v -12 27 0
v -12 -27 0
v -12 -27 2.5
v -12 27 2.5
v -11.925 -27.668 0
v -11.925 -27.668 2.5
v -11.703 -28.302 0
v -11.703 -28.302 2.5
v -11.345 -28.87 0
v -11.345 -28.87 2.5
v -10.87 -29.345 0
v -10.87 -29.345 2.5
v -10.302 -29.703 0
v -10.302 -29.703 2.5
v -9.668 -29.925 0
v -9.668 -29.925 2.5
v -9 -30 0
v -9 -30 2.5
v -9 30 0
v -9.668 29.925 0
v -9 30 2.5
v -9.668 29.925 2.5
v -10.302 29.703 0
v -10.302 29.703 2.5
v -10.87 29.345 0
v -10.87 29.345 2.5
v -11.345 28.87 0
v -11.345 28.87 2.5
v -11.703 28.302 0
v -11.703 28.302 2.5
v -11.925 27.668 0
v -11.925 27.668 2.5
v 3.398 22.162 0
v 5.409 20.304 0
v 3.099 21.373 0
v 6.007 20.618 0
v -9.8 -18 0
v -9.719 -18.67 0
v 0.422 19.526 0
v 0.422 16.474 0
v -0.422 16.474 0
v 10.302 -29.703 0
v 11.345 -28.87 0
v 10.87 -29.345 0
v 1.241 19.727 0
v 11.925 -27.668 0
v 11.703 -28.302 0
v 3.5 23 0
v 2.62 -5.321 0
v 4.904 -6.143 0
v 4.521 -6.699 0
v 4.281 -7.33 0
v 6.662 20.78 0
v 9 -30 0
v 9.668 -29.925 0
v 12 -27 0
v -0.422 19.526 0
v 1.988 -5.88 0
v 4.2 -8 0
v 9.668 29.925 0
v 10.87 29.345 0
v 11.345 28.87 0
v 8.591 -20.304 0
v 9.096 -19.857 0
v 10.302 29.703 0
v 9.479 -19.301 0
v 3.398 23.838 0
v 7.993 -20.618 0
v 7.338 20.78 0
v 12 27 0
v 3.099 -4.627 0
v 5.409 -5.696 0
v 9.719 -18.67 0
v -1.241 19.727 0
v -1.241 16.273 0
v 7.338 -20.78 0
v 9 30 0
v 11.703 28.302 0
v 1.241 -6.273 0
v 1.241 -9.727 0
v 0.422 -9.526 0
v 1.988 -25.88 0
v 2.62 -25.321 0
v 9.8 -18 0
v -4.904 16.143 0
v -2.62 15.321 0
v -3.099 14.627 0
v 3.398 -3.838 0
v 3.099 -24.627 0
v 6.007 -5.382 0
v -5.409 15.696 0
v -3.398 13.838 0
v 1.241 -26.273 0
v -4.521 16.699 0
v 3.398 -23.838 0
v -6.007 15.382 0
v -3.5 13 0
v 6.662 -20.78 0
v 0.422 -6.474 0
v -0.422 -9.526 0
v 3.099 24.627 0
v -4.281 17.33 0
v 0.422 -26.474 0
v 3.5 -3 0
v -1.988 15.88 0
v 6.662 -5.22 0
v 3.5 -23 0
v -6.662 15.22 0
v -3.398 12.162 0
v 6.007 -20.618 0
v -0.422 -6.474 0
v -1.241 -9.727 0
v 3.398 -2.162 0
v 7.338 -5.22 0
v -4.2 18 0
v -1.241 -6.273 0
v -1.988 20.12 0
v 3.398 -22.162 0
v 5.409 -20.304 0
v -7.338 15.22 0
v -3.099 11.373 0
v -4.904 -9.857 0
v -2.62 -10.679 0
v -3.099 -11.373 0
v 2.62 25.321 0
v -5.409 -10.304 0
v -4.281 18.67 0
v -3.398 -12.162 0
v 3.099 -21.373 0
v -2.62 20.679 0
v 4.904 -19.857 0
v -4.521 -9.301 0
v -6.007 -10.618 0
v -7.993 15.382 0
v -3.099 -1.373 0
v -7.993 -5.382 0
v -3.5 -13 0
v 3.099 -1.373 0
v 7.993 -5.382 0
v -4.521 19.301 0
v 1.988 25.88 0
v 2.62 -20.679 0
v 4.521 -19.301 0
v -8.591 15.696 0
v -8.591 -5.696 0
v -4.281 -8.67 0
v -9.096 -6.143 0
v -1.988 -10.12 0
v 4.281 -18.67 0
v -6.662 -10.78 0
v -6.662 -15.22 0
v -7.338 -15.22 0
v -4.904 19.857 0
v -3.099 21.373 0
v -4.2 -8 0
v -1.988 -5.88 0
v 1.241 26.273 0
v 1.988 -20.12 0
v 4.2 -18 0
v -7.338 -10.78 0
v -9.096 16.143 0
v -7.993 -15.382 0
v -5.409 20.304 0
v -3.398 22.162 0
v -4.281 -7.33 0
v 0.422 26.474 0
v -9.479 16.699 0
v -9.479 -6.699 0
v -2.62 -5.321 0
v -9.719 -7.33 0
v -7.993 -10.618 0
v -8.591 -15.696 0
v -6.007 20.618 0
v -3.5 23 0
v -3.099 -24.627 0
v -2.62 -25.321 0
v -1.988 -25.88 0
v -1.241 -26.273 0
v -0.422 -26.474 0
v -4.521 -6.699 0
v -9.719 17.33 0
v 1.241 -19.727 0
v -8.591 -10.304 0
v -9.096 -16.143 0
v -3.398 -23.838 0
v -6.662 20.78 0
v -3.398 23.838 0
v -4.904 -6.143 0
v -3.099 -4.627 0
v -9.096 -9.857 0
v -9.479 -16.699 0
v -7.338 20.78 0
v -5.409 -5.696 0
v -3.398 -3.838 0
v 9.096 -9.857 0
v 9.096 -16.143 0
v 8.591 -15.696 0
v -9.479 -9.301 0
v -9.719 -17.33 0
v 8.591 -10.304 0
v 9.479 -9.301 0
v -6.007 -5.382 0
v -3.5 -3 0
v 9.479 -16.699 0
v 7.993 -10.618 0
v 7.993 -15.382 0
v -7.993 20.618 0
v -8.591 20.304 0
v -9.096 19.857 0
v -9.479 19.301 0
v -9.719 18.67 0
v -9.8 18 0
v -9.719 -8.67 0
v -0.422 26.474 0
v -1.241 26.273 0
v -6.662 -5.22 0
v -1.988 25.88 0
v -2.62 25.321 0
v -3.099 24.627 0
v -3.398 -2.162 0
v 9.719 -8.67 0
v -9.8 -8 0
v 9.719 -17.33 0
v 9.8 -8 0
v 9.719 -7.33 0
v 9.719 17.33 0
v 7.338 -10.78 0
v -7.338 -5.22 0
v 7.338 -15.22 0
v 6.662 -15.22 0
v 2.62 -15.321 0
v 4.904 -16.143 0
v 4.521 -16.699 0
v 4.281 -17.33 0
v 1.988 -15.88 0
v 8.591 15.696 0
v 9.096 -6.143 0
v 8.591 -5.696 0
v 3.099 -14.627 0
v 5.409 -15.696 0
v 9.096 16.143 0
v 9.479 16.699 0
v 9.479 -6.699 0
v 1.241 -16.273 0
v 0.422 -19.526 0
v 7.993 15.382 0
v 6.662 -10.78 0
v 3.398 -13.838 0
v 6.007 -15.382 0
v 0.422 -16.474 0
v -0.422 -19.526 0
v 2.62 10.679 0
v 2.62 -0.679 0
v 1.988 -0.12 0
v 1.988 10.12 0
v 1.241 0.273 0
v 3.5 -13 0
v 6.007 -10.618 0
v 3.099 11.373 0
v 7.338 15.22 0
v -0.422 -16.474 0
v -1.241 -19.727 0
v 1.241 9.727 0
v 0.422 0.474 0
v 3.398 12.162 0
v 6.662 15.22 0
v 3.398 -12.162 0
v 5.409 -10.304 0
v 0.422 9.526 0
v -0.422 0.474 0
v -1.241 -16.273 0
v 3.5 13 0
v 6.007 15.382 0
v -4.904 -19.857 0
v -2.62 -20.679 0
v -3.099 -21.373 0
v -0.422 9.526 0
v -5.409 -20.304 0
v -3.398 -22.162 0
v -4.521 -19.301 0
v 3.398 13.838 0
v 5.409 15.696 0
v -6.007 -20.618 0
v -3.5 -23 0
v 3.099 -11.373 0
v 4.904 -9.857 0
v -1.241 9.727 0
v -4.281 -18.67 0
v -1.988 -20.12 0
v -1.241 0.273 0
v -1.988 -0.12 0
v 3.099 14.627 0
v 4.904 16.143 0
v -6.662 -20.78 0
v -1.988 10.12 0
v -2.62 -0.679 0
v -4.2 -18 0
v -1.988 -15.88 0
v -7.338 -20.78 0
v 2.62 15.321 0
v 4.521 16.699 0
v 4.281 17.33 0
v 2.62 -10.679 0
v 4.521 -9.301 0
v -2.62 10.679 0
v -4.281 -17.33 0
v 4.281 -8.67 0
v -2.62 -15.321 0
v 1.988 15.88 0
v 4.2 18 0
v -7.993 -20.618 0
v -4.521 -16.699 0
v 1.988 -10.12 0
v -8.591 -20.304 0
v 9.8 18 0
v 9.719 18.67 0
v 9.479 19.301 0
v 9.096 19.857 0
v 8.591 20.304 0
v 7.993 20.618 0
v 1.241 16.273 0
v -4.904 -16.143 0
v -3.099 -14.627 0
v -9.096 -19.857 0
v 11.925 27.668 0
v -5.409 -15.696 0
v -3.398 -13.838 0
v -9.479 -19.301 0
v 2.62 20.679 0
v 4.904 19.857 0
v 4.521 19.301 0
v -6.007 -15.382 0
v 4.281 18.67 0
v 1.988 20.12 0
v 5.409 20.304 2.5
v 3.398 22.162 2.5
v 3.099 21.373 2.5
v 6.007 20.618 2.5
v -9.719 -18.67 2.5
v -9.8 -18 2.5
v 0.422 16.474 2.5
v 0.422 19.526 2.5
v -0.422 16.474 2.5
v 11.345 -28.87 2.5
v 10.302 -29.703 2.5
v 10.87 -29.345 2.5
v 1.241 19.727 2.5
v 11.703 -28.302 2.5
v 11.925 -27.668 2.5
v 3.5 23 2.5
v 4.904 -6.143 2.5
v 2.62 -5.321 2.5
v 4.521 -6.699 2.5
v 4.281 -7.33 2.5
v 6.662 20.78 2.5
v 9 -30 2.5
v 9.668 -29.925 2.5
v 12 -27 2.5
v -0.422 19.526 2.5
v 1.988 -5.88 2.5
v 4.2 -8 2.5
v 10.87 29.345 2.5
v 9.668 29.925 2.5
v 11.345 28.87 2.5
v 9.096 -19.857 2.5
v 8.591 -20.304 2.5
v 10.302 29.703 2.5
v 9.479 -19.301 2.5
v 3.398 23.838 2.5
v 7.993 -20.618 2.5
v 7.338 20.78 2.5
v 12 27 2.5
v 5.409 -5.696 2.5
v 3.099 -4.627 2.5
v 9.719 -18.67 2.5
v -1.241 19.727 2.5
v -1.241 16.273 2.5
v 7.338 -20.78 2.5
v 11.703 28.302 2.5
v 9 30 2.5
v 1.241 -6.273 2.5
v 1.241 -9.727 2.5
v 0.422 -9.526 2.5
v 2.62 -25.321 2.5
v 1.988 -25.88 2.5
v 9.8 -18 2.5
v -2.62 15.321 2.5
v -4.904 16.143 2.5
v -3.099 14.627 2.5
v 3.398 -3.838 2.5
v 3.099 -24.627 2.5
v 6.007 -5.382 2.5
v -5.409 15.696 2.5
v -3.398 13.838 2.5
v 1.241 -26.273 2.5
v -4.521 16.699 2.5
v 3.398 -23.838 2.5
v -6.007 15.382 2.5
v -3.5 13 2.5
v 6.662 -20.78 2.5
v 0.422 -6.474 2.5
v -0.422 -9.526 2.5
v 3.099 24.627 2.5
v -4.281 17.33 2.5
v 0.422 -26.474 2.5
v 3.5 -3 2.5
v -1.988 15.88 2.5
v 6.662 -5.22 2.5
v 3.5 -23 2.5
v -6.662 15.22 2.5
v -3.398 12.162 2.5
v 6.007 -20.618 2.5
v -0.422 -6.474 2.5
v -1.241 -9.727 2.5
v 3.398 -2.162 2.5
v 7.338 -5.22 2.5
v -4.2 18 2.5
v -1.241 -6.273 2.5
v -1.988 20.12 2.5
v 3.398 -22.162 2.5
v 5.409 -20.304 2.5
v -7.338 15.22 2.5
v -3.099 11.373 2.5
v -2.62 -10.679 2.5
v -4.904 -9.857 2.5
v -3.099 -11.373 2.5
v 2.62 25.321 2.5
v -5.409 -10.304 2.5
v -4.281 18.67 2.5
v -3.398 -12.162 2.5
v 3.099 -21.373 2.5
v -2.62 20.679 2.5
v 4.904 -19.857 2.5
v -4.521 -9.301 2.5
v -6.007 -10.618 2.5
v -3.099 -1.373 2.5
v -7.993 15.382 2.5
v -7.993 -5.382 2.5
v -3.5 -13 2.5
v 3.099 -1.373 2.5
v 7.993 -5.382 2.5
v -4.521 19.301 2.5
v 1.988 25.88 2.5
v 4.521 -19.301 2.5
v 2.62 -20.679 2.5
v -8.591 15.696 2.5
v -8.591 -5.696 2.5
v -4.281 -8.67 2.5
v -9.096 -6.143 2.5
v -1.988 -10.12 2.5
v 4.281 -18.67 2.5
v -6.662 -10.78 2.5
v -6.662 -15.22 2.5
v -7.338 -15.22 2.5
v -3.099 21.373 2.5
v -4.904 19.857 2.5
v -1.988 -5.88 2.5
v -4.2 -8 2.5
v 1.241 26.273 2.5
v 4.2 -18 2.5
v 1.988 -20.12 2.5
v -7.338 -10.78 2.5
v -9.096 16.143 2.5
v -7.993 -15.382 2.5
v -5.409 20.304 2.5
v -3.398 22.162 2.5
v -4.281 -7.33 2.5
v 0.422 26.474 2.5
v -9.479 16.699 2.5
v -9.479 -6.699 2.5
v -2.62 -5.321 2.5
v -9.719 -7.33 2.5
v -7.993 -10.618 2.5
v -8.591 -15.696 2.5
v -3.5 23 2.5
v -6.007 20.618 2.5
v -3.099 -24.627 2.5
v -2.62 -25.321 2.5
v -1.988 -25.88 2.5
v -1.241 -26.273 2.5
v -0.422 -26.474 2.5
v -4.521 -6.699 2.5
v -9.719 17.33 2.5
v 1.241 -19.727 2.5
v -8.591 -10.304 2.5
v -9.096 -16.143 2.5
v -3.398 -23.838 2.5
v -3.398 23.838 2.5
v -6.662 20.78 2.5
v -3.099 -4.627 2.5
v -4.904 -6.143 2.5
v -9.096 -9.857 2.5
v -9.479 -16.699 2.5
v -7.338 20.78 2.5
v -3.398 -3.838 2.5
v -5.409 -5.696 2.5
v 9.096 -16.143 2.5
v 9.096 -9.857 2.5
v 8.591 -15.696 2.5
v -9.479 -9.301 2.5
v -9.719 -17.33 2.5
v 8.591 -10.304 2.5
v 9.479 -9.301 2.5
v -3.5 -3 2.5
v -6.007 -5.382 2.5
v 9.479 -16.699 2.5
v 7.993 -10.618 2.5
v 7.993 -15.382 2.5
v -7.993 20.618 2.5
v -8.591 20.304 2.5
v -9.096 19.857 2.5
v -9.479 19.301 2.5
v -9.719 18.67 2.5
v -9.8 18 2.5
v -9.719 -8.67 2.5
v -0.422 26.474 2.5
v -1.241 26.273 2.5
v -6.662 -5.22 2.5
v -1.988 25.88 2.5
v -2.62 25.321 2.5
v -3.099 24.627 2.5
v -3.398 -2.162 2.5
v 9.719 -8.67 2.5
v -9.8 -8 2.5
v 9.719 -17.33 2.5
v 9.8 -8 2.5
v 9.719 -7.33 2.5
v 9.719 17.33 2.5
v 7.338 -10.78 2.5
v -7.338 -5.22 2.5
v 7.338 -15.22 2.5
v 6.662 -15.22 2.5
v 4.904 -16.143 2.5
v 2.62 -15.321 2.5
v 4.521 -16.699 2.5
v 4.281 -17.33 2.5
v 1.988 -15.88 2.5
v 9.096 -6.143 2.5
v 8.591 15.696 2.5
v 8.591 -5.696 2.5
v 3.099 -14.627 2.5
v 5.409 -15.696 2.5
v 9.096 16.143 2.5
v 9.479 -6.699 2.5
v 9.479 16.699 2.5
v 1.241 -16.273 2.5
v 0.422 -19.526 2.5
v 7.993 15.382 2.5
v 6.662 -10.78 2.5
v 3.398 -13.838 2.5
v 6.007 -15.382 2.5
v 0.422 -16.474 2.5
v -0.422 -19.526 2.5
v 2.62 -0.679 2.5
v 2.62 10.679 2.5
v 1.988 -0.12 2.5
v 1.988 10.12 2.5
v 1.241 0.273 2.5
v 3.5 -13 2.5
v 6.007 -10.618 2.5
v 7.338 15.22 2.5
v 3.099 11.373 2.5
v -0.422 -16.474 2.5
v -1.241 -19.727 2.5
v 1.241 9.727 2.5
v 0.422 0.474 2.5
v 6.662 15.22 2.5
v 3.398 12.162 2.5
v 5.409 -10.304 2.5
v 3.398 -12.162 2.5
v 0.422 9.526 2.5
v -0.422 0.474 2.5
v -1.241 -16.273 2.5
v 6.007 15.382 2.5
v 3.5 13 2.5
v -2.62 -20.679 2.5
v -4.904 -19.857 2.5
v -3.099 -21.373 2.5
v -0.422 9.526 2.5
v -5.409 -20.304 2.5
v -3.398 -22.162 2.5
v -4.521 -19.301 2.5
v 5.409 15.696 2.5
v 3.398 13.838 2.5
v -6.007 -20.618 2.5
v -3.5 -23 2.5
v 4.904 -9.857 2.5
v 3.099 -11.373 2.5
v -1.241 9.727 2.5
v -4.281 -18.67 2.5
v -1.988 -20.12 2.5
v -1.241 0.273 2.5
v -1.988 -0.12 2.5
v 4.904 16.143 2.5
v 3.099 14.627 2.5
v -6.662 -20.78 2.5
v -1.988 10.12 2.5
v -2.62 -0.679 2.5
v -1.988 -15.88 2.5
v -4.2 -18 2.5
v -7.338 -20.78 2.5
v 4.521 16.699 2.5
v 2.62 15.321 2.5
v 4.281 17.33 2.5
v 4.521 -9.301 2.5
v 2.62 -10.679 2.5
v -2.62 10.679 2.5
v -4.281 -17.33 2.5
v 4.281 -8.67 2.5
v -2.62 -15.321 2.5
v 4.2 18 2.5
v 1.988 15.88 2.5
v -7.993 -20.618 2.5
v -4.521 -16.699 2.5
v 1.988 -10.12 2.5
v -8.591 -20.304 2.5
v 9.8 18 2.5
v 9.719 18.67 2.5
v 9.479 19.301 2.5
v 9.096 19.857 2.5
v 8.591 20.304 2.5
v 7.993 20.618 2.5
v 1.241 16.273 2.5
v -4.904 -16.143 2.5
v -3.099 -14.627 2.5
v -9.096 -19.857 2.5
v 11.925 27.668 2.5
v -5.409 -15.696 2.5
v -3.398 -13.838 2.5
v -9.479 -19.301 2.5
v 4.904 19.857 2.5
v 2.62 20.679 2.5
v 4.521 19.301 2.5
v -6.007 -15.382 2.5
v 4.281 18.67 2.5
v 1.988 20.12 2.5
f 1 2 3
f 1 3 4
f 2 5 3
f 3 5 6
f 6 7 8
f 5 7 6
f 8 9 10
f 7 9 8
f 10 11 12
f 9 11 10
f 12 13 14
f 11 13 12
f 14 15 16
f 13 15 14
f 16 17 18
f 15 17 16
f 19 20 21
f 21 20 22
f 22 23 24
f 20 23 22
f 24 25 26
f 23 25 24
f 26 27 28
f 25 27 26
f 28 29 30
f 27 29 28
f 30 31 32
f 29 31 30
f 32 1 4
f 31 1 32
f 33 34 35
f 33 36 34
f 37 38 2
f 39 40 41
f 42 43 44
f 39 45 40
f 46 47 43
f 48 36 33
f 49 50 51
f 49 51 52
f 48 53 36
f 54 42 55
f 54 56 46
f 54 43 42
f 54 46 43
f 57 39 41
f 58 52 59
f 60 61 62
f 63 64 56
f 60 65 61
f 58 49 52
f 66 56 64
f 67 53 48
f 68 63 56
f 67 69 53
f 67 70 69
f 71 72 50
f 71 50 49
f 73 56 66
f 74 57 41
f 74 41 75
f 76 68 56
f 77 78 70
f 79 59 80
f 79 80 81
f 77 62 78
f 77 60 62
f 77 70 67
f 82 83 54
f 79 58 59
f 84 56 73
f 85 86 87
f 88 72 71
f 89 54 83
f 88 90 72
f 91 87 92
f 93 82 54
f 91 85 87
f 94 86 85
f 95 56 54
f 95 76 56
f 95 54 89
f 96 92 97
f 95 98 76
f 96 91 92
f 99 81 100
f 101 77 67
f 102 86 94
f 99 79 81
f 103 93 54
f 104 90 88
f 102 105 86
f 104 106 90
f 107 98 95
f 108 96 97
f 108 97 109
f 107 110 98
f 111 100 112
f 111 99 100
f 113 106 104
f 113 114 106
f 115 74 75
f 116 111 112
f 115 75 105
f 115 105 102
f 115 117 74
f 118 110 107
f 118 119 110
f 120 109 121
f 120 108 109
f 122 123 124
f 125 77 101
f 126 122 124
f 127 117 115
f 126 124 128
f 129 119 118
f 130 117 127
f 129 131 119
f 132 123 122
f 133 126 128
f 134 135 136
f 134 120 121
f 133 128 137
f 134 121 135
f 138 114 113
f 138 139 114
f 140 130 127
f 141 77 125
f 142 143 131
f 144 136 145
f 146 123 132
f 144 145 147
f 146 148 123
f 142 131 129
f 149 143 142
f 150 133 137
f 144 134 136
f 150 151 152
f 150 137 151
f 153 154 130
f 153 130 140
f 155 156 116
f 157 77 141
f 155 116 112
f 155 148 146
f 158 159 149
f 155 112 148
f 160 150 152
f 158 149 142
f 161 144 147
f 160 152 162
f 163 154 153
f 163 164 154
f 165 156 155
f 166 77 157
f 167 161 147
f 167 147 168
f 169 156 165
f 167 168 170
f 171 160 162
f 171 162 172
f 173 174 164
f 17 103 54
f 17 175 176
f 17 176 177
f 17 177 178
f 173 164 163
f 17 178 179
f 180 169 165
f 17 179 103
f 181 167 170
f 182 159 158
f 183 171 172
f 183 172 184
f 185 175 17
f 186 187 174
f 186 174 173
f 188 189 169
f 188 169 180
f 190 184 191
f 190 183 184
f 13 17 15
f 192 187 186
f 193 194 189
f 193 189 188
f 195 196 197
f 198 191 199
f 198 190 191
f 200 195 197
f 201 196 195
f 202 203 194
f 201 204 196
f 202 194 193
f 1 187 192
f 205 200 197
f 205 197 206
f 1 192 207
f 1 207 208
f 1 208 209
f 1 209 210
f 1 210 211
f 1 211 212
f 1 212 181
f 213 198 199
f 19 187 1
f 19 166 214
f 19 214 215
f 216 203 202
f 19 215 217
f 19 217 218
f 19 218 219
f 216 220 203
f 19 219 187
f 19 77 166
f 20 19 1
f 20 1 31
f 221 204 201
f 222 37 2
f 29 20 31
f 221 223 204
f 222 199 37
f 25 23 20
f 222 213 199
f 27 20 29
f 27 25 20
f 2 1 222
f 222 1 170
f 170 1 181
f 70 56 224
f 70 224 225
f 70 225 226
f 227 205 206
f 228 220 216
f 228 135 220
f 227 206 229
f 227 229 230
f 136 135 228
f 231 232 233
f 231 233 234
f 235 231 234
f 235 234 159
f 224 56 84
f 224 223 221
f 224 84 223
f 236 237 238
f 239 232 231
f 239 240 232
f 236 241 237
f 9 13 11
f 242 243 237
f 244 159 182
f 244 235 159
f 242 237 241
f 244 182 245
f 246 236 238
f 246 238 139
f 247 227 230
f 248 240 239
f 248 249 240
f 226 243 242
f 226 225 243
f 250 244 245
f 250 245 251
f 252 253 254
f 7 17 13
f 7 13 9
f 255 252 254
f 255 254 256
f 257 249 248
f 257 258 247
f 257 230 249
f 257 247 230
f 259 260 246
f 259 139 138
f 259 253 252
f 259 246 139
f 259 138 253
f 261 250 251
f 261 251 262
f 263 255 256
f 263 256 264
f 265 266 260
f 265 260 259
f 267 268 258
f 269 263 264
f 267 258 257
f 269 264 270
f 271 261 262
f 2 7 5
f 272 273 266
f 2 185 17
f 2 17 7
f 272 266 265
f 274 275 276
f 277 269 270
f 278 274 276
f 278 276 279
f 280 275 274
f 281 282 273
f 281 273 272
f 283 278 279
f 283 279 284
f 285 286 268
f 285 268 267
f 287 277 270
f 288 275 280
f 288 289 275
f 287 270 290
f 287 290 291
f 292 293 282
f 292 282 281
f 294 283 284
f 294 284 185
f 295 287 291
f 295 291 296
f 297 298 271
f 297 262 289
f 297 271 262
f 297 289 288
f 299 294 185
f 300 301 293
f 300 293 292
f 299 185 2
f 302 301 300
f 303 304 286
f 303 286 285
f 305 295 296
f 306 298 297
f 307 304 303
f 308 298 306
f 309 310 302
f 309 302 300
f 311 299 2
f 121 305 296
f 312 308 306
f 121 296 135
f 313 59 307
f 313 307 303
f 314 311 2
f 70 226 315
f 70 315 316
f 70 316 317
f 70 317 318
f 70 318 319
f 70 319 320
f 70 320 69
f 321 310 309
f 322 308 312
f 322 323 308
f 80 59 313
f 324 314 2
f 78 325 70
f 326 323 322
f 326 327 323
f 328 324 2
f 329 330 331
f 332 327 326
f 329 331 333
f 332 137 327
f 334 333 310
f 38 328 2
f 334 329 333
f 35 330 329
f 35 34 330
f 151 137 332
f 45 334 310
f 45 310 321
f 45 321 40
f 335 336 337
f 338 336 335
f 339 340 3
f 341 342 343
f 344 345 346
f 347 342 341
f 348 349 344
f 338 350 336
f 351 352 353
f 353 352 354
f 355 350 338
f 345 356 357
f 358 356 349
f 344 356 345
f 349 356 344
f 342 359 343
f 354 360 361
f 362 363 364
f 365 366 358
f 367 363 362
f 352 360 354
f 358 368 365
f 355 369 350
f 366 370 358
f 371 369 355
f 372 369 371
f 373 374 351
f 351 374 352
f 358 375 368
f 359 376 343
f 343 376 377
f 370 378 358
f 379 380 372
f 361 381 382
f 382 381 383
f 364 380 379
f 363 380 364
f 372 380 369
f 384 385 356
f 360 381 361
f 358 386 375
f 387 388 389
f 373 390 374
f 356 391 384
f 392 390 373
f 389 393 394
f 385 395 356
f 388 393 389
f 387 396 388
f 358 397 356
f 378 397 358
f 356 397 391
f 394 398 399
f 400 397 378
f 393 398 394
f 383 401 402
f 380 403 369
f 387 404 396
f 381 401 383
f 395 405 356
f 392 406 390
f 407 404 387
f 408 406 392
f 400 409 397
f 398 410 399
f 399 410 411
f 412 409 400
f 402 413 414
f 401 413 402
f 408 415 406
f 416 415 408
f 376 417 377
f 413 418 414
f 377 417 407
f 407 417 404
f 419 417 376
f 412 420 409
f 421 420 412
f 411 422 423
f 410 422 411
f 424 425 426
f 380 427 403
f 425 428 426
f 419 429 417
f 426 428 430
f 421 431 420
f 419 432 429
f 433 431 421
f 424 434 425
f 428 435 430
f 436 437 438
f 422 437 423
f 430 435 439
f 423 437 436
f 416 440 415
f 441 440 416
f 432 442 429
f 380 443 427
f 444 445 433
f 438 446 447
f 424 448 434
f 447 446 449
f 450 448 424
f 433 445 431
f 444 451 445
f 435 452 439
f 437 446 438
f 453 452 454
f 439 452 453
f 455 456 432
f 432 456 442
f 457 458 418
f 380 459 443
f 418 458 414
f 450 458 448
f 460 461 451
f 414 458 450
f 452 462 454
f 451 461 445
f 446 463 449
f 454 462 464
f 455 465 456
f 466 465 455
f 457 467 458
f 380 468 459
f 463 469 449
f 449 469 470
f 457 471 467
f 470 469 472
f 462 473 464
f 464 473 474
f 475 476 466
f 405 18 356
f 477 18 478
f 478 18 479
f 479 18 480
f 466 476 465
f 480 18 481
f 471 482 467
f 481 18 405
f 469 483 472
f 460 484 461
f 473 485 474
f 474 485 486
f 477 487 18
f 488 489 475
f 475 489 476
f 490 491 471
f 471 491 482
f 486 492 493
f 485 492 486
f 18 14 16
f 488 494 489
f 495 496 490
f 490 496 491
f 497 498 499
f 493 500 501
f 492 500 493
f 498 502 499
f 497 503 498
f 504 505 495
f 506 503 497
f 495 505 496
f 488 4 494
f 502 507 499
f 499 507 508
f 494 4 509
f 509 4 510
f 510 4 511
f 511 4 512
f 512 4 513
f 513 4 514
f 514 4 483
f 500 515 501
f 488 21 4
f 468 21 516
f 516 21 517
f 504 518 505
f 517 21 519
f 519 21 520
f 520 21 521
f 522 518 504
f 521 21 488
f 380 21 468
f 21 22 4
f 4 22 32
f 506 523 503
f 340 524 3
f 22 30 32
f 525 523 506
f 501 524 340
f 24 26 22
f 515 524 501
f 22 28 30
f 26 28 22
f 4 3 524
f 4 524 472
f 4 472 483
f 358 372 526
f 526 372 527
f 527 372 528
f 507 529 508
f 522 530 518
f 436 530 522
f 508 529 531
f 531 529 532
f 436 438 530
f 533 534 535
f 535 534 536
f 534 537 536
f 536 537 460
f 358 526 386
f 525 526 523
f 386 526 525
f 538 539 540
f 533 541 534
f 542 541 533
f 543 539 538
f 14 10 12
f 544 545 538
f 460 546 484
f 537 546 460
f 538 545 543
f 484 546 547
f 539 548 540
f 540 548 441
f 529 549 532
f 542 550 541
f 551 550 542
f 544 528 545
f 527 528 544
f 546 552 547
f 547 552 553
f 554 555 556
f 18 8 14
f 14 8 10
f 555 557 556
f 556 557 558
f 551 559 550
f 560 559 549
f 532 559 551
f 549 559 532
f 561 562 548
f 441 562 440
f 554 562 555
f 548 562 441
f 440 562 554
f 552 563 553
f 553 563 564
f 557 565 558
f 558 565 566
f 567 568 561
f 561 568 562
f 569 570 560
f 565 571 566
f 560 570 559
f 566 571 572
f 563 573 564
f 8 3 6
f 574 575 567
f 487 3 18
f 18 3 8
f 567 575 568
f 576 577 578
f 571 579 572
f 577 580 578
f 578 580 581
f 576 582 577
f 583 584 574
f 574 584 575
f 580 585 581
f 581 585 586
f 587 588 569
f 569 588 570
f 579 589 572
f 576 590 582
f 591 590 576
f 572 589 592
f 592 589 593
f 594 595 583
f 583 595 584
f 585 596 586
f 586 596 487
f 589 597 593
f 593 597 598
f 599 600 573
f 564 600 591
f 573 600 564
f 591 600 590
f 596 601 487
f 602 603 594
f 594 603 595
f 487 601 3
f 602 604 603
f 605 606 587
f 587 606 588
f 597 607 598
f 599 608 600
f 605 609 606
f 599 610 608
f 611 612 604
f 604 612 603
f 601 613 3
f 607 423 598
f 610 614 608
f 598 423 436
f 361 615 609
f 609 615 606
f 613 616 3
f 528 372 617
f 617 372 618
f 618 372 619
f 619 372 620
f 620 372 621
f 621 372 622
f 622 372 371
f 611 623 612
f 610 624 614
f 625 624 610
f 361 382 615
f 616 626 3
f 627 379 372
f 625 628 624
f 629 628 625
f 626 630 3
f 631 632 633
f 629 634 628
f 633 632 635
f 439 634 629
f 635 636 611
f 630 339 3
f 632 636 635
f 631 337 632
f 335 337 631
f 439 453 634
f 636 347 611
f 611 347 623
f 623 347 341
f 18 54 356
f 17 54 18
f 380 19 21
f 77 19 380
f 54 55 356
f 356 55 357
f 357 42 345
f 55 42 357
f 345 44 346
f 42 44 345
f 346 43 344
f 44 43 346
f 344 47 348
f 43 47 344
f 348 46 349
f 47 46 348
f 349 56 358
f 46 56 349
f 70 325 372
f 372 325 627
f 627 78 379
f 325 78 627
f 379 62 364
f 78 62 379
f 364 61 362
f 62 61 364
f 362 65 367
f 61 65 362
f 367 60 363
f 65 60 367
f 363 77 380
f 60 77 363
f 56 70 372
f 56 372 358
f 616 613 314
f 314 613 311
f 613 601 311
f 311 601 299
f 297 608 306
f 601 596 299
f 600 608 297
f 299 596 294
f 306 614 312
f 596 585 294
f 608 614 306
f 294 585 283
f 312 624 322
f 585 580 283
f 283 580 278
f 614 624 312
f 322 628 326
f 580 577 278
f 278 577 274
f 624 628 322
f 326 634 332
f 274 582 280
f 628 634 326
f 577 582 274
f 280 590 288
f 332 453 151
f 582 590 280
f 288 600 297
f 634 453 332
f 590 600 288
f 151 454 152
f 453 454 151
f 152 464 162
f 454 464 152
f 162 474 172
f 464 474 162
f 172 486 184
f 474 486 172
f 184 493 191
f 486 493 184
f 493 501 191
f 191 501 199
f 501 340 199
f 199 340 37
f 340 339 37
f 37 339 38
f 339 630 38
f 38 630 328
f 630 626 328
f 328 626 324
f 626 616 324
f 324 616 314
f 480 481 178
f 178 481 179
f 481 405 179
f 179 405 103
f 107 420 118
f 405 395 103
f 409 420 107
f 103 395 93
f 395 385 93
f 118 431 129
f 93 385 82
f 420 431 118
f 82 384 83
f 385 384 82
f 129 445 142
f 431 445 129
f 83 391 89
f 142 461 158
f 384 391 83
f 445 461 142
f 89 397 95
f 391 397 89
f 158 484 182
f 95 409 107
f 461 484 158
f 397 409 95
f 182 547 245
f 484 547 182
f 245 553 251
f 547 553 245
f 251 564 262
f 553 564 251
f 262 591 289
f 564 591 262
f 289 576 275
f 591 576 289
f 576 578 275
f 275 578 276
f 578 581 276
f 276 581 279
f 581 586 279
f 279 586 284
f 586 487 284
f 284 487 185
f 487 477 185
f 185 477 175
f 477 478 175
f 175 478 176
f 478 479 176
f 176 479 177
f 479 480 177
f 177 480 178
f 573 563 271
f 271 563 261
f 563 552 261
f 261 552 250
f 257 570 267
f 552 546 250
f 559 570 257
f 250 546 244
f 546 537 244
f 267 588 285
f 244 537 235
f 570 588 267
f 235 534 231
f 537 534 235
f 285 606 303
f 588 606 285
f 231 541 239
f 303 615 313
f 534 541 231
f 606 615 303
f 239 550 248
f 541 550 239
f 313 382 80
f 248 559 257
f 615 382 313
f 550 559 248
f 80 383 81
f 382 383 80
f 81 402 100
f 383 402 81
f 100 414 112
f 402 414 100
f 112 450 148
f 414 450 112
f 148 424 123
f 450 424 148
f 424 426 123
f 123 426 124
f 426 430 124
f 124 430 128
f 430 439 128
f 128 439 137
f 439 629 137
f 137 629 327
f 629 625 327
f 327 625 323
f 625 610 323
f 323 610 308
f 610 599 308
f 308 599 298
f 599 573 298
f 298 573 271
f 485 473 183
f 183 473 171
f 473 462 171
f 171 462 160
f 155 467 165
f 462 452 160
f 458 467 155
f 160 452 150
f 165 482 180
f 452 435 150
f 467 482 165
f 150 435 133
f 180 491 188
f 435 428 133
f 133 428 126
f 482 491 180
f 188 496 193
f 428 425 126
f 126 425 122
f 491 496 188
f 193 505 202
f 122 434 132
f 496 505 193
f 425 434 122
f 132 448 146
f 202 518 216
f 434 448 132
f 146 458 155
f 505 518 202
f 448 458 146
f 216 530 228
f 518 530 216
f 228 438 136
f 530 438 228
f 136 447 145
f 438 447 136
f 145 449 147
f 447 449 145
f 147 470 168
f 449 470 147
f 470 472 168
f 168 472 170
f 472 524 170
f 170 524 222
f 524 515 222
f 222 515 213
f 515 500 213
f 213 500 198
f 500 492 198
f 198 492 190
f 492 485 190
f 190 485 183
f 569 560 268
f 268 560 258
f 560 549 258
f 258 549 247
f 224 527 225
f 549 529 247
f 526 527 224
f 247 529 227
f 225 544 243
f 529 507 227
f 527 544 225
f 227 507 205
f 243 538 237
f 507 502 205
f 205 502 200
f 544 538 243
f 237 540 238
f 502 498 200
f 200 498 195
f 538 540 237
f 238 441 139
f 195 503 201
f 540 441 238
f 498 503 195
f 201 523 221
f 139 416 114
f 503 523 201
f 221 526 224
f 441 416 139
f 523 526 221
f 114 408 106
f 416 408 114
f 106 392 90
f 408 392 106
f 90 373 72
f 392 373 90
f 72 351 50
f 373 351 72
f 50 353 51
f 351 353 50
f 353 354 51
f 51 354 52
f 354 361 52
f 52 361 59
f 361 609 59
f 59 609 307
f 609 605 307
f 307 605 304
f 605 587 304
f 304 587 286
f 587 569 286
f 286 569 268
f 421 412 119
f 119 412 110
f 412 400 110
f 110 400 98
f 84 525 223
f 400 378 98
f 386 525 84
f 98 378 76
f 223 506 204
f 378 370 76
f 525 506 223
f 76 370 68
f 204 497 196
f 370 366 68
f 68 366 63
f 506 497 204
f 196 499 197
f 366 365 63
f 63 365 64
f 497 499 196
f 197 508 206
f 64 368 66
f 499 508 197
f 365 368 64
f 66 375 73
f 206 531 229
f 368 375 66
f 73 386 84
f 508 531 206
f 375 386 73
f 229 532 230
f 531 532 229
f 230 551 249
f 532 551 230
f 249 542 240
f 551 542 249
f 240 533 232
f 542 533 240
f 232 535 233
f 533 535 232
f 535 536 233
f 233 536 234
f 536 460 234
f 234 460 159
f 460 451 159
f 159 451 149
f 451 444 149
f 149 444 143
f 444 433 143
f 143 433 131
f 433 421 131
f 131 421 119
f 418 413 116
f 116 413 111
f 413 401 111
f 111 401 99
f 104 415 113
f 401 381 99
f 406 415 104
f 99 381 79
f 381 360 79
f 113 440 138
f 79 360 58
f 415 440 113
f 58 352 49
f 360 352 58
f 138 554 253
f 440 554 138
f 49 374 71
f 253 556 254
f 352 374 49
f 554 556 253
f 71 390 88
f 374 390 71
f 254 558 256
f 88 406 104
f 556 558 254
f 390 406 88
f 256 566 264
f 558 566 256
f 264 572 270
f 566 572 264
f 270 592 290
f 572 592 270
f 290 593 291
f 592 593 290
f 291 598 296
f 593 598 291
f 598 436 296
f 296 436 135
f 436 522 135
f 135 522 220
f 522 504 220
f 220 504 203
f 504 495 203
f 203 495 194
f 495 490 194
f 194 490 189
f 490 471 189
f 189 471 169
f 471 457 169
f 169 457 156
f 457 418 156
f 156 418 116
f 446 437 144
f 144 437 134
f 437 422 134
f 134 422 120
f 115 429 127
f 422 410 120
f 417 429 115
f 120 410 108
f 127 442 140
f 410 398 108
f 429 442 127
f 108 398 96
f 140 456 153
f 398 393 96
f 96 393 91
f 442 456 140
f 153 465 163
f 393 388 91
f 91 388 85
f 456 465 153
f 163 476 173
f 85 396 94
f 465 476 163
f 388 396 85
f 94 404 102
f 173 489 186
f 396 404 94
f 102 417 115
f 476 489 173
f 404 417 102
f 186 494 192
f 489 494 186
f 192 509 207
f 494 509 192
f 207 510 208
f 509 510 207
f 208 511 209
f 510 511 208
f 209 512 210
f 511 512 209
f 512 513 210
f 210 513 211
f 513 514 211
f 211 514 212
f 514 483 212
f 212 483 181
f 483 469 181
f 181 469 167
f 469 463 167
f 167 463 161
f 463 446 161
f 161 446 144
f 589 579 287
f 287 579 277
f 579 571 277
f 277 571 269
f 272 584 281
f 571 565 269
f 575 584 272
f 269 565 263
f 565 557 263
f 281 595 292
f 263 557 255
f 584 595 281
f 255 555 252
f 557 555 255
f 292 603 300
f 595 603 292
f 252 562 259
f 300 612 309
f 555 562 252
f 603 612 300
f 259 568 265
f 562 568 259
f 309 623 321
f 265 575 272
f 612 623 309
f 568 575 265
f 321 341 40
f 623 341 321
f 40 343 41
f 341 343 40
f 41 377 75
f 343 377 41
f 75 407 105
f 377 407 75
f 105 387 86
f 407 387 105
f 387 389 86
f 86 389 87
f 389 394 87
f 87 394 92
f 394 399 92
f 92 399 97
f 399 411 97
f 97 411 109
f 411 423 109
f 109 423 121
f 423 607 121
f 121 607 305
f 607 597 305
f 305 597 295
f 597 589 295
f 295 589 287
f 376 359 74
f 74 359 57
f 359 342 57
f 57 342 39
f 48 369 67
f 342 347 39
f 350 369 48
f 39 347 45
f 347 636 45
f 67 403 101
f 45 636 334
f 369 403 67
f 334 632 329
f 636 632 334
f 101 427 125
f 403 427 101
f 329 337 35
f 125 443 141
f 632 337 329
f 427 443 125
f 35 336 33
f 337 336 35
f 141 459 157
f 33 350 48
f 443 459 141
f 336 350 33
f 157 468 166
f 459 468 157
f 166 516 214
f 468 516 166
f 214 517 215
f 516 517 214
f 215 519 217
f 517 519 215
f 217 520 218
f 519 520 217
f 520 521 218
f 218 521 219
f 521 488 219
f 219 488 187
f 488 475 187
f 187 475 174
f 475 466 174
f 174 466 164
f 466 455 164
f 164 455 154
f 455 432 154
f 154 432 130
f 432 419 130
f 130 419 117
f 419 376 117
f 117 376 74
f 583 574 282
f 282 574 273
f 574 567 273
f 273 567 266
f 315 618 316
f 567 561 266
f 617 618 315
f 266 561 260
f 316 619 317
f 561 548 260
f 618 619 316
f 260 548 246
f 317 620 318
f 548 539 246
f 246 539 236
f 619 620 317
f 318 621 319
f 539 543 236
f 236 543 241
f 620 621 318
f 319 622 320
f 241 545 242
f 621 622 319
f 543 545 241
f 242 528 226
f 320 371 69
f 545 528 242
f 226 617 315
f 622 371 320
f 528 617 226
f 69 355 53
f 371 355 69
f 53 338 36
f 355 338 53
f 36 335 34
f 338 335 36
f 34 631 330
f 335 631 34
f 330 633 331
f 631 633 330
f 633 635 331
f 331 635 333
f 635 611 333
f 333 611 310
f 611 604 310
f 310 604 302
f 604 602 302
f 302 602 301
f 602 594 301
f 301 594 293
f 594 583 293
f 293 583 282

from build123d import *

# Parameters (mm, degrees)
PAD_DEPTH     = 2.5
SKETCH001_R   = 3.5
SKETCH001_R_2 = 2.8
POCKET_DEPTH  = 2.501


with BuildPart() as part:
    # Sketch → Pad (new body)
    with BuildSketch(Plane.XY):
        with BuildLine():
            Line((-9, 30), (9, 30))
            ThreePointArc((12, 27), (11.12132, 29.12132), (9, 30))
            Line((12, 27), (12, -27))
            ThreePointArc((9, -30), (11.12132, -29.12132), (12, -27))
            Line((9, -30), (-9, -30))
            ThreePointArc((-12, -27), (-11.12132, -29.12132), (-9, -30))
            Line((-12, -27), (-12, 27))
            ThreePointArc((-9, 30), (-11.12132, 29.12132), (-12, 27))
        make_face()
    extrude(amount=PAD_DEPTH)

    # Sketch001 (on Face10 of Pad) → Pocket (cut, through all)
    with BuildSketch(Plane.XY.offset(2.5)):
        with Locations((0, 23)):
            Circle(SKETCH001_R)
        with Locations((0, 13)):
            Circle(SKETCH001_R)
        with Locations((0, -13)):
            Circle(SKETCH001_R)
        with Locations((0, -23)):
            Circle(SKETCH001_R)
        with Locations((0, -3)):
            Circle(SKETCH001_R)
        with Locations((-7, 18)):
            Circle(SKETCH001_R_2)
        with Locations((7, 18)):
            Circle(SKETCH001_R_2)
        with Locations((-7, -8)):
            Circle(SKETCH001_R_2)
        with Locations((7, -8)):
            Circle(SKETCH001_R_2)
        with Locations((-7, -18)):
            Circle(SKETCH001_R_2)
        with Locations((7, -18)):
            Circle(SKETCH001_R_2)
    extrude(amount=-POCKET_DEPTH, mode=Mode.SUBTRACT)


solid = part.part
